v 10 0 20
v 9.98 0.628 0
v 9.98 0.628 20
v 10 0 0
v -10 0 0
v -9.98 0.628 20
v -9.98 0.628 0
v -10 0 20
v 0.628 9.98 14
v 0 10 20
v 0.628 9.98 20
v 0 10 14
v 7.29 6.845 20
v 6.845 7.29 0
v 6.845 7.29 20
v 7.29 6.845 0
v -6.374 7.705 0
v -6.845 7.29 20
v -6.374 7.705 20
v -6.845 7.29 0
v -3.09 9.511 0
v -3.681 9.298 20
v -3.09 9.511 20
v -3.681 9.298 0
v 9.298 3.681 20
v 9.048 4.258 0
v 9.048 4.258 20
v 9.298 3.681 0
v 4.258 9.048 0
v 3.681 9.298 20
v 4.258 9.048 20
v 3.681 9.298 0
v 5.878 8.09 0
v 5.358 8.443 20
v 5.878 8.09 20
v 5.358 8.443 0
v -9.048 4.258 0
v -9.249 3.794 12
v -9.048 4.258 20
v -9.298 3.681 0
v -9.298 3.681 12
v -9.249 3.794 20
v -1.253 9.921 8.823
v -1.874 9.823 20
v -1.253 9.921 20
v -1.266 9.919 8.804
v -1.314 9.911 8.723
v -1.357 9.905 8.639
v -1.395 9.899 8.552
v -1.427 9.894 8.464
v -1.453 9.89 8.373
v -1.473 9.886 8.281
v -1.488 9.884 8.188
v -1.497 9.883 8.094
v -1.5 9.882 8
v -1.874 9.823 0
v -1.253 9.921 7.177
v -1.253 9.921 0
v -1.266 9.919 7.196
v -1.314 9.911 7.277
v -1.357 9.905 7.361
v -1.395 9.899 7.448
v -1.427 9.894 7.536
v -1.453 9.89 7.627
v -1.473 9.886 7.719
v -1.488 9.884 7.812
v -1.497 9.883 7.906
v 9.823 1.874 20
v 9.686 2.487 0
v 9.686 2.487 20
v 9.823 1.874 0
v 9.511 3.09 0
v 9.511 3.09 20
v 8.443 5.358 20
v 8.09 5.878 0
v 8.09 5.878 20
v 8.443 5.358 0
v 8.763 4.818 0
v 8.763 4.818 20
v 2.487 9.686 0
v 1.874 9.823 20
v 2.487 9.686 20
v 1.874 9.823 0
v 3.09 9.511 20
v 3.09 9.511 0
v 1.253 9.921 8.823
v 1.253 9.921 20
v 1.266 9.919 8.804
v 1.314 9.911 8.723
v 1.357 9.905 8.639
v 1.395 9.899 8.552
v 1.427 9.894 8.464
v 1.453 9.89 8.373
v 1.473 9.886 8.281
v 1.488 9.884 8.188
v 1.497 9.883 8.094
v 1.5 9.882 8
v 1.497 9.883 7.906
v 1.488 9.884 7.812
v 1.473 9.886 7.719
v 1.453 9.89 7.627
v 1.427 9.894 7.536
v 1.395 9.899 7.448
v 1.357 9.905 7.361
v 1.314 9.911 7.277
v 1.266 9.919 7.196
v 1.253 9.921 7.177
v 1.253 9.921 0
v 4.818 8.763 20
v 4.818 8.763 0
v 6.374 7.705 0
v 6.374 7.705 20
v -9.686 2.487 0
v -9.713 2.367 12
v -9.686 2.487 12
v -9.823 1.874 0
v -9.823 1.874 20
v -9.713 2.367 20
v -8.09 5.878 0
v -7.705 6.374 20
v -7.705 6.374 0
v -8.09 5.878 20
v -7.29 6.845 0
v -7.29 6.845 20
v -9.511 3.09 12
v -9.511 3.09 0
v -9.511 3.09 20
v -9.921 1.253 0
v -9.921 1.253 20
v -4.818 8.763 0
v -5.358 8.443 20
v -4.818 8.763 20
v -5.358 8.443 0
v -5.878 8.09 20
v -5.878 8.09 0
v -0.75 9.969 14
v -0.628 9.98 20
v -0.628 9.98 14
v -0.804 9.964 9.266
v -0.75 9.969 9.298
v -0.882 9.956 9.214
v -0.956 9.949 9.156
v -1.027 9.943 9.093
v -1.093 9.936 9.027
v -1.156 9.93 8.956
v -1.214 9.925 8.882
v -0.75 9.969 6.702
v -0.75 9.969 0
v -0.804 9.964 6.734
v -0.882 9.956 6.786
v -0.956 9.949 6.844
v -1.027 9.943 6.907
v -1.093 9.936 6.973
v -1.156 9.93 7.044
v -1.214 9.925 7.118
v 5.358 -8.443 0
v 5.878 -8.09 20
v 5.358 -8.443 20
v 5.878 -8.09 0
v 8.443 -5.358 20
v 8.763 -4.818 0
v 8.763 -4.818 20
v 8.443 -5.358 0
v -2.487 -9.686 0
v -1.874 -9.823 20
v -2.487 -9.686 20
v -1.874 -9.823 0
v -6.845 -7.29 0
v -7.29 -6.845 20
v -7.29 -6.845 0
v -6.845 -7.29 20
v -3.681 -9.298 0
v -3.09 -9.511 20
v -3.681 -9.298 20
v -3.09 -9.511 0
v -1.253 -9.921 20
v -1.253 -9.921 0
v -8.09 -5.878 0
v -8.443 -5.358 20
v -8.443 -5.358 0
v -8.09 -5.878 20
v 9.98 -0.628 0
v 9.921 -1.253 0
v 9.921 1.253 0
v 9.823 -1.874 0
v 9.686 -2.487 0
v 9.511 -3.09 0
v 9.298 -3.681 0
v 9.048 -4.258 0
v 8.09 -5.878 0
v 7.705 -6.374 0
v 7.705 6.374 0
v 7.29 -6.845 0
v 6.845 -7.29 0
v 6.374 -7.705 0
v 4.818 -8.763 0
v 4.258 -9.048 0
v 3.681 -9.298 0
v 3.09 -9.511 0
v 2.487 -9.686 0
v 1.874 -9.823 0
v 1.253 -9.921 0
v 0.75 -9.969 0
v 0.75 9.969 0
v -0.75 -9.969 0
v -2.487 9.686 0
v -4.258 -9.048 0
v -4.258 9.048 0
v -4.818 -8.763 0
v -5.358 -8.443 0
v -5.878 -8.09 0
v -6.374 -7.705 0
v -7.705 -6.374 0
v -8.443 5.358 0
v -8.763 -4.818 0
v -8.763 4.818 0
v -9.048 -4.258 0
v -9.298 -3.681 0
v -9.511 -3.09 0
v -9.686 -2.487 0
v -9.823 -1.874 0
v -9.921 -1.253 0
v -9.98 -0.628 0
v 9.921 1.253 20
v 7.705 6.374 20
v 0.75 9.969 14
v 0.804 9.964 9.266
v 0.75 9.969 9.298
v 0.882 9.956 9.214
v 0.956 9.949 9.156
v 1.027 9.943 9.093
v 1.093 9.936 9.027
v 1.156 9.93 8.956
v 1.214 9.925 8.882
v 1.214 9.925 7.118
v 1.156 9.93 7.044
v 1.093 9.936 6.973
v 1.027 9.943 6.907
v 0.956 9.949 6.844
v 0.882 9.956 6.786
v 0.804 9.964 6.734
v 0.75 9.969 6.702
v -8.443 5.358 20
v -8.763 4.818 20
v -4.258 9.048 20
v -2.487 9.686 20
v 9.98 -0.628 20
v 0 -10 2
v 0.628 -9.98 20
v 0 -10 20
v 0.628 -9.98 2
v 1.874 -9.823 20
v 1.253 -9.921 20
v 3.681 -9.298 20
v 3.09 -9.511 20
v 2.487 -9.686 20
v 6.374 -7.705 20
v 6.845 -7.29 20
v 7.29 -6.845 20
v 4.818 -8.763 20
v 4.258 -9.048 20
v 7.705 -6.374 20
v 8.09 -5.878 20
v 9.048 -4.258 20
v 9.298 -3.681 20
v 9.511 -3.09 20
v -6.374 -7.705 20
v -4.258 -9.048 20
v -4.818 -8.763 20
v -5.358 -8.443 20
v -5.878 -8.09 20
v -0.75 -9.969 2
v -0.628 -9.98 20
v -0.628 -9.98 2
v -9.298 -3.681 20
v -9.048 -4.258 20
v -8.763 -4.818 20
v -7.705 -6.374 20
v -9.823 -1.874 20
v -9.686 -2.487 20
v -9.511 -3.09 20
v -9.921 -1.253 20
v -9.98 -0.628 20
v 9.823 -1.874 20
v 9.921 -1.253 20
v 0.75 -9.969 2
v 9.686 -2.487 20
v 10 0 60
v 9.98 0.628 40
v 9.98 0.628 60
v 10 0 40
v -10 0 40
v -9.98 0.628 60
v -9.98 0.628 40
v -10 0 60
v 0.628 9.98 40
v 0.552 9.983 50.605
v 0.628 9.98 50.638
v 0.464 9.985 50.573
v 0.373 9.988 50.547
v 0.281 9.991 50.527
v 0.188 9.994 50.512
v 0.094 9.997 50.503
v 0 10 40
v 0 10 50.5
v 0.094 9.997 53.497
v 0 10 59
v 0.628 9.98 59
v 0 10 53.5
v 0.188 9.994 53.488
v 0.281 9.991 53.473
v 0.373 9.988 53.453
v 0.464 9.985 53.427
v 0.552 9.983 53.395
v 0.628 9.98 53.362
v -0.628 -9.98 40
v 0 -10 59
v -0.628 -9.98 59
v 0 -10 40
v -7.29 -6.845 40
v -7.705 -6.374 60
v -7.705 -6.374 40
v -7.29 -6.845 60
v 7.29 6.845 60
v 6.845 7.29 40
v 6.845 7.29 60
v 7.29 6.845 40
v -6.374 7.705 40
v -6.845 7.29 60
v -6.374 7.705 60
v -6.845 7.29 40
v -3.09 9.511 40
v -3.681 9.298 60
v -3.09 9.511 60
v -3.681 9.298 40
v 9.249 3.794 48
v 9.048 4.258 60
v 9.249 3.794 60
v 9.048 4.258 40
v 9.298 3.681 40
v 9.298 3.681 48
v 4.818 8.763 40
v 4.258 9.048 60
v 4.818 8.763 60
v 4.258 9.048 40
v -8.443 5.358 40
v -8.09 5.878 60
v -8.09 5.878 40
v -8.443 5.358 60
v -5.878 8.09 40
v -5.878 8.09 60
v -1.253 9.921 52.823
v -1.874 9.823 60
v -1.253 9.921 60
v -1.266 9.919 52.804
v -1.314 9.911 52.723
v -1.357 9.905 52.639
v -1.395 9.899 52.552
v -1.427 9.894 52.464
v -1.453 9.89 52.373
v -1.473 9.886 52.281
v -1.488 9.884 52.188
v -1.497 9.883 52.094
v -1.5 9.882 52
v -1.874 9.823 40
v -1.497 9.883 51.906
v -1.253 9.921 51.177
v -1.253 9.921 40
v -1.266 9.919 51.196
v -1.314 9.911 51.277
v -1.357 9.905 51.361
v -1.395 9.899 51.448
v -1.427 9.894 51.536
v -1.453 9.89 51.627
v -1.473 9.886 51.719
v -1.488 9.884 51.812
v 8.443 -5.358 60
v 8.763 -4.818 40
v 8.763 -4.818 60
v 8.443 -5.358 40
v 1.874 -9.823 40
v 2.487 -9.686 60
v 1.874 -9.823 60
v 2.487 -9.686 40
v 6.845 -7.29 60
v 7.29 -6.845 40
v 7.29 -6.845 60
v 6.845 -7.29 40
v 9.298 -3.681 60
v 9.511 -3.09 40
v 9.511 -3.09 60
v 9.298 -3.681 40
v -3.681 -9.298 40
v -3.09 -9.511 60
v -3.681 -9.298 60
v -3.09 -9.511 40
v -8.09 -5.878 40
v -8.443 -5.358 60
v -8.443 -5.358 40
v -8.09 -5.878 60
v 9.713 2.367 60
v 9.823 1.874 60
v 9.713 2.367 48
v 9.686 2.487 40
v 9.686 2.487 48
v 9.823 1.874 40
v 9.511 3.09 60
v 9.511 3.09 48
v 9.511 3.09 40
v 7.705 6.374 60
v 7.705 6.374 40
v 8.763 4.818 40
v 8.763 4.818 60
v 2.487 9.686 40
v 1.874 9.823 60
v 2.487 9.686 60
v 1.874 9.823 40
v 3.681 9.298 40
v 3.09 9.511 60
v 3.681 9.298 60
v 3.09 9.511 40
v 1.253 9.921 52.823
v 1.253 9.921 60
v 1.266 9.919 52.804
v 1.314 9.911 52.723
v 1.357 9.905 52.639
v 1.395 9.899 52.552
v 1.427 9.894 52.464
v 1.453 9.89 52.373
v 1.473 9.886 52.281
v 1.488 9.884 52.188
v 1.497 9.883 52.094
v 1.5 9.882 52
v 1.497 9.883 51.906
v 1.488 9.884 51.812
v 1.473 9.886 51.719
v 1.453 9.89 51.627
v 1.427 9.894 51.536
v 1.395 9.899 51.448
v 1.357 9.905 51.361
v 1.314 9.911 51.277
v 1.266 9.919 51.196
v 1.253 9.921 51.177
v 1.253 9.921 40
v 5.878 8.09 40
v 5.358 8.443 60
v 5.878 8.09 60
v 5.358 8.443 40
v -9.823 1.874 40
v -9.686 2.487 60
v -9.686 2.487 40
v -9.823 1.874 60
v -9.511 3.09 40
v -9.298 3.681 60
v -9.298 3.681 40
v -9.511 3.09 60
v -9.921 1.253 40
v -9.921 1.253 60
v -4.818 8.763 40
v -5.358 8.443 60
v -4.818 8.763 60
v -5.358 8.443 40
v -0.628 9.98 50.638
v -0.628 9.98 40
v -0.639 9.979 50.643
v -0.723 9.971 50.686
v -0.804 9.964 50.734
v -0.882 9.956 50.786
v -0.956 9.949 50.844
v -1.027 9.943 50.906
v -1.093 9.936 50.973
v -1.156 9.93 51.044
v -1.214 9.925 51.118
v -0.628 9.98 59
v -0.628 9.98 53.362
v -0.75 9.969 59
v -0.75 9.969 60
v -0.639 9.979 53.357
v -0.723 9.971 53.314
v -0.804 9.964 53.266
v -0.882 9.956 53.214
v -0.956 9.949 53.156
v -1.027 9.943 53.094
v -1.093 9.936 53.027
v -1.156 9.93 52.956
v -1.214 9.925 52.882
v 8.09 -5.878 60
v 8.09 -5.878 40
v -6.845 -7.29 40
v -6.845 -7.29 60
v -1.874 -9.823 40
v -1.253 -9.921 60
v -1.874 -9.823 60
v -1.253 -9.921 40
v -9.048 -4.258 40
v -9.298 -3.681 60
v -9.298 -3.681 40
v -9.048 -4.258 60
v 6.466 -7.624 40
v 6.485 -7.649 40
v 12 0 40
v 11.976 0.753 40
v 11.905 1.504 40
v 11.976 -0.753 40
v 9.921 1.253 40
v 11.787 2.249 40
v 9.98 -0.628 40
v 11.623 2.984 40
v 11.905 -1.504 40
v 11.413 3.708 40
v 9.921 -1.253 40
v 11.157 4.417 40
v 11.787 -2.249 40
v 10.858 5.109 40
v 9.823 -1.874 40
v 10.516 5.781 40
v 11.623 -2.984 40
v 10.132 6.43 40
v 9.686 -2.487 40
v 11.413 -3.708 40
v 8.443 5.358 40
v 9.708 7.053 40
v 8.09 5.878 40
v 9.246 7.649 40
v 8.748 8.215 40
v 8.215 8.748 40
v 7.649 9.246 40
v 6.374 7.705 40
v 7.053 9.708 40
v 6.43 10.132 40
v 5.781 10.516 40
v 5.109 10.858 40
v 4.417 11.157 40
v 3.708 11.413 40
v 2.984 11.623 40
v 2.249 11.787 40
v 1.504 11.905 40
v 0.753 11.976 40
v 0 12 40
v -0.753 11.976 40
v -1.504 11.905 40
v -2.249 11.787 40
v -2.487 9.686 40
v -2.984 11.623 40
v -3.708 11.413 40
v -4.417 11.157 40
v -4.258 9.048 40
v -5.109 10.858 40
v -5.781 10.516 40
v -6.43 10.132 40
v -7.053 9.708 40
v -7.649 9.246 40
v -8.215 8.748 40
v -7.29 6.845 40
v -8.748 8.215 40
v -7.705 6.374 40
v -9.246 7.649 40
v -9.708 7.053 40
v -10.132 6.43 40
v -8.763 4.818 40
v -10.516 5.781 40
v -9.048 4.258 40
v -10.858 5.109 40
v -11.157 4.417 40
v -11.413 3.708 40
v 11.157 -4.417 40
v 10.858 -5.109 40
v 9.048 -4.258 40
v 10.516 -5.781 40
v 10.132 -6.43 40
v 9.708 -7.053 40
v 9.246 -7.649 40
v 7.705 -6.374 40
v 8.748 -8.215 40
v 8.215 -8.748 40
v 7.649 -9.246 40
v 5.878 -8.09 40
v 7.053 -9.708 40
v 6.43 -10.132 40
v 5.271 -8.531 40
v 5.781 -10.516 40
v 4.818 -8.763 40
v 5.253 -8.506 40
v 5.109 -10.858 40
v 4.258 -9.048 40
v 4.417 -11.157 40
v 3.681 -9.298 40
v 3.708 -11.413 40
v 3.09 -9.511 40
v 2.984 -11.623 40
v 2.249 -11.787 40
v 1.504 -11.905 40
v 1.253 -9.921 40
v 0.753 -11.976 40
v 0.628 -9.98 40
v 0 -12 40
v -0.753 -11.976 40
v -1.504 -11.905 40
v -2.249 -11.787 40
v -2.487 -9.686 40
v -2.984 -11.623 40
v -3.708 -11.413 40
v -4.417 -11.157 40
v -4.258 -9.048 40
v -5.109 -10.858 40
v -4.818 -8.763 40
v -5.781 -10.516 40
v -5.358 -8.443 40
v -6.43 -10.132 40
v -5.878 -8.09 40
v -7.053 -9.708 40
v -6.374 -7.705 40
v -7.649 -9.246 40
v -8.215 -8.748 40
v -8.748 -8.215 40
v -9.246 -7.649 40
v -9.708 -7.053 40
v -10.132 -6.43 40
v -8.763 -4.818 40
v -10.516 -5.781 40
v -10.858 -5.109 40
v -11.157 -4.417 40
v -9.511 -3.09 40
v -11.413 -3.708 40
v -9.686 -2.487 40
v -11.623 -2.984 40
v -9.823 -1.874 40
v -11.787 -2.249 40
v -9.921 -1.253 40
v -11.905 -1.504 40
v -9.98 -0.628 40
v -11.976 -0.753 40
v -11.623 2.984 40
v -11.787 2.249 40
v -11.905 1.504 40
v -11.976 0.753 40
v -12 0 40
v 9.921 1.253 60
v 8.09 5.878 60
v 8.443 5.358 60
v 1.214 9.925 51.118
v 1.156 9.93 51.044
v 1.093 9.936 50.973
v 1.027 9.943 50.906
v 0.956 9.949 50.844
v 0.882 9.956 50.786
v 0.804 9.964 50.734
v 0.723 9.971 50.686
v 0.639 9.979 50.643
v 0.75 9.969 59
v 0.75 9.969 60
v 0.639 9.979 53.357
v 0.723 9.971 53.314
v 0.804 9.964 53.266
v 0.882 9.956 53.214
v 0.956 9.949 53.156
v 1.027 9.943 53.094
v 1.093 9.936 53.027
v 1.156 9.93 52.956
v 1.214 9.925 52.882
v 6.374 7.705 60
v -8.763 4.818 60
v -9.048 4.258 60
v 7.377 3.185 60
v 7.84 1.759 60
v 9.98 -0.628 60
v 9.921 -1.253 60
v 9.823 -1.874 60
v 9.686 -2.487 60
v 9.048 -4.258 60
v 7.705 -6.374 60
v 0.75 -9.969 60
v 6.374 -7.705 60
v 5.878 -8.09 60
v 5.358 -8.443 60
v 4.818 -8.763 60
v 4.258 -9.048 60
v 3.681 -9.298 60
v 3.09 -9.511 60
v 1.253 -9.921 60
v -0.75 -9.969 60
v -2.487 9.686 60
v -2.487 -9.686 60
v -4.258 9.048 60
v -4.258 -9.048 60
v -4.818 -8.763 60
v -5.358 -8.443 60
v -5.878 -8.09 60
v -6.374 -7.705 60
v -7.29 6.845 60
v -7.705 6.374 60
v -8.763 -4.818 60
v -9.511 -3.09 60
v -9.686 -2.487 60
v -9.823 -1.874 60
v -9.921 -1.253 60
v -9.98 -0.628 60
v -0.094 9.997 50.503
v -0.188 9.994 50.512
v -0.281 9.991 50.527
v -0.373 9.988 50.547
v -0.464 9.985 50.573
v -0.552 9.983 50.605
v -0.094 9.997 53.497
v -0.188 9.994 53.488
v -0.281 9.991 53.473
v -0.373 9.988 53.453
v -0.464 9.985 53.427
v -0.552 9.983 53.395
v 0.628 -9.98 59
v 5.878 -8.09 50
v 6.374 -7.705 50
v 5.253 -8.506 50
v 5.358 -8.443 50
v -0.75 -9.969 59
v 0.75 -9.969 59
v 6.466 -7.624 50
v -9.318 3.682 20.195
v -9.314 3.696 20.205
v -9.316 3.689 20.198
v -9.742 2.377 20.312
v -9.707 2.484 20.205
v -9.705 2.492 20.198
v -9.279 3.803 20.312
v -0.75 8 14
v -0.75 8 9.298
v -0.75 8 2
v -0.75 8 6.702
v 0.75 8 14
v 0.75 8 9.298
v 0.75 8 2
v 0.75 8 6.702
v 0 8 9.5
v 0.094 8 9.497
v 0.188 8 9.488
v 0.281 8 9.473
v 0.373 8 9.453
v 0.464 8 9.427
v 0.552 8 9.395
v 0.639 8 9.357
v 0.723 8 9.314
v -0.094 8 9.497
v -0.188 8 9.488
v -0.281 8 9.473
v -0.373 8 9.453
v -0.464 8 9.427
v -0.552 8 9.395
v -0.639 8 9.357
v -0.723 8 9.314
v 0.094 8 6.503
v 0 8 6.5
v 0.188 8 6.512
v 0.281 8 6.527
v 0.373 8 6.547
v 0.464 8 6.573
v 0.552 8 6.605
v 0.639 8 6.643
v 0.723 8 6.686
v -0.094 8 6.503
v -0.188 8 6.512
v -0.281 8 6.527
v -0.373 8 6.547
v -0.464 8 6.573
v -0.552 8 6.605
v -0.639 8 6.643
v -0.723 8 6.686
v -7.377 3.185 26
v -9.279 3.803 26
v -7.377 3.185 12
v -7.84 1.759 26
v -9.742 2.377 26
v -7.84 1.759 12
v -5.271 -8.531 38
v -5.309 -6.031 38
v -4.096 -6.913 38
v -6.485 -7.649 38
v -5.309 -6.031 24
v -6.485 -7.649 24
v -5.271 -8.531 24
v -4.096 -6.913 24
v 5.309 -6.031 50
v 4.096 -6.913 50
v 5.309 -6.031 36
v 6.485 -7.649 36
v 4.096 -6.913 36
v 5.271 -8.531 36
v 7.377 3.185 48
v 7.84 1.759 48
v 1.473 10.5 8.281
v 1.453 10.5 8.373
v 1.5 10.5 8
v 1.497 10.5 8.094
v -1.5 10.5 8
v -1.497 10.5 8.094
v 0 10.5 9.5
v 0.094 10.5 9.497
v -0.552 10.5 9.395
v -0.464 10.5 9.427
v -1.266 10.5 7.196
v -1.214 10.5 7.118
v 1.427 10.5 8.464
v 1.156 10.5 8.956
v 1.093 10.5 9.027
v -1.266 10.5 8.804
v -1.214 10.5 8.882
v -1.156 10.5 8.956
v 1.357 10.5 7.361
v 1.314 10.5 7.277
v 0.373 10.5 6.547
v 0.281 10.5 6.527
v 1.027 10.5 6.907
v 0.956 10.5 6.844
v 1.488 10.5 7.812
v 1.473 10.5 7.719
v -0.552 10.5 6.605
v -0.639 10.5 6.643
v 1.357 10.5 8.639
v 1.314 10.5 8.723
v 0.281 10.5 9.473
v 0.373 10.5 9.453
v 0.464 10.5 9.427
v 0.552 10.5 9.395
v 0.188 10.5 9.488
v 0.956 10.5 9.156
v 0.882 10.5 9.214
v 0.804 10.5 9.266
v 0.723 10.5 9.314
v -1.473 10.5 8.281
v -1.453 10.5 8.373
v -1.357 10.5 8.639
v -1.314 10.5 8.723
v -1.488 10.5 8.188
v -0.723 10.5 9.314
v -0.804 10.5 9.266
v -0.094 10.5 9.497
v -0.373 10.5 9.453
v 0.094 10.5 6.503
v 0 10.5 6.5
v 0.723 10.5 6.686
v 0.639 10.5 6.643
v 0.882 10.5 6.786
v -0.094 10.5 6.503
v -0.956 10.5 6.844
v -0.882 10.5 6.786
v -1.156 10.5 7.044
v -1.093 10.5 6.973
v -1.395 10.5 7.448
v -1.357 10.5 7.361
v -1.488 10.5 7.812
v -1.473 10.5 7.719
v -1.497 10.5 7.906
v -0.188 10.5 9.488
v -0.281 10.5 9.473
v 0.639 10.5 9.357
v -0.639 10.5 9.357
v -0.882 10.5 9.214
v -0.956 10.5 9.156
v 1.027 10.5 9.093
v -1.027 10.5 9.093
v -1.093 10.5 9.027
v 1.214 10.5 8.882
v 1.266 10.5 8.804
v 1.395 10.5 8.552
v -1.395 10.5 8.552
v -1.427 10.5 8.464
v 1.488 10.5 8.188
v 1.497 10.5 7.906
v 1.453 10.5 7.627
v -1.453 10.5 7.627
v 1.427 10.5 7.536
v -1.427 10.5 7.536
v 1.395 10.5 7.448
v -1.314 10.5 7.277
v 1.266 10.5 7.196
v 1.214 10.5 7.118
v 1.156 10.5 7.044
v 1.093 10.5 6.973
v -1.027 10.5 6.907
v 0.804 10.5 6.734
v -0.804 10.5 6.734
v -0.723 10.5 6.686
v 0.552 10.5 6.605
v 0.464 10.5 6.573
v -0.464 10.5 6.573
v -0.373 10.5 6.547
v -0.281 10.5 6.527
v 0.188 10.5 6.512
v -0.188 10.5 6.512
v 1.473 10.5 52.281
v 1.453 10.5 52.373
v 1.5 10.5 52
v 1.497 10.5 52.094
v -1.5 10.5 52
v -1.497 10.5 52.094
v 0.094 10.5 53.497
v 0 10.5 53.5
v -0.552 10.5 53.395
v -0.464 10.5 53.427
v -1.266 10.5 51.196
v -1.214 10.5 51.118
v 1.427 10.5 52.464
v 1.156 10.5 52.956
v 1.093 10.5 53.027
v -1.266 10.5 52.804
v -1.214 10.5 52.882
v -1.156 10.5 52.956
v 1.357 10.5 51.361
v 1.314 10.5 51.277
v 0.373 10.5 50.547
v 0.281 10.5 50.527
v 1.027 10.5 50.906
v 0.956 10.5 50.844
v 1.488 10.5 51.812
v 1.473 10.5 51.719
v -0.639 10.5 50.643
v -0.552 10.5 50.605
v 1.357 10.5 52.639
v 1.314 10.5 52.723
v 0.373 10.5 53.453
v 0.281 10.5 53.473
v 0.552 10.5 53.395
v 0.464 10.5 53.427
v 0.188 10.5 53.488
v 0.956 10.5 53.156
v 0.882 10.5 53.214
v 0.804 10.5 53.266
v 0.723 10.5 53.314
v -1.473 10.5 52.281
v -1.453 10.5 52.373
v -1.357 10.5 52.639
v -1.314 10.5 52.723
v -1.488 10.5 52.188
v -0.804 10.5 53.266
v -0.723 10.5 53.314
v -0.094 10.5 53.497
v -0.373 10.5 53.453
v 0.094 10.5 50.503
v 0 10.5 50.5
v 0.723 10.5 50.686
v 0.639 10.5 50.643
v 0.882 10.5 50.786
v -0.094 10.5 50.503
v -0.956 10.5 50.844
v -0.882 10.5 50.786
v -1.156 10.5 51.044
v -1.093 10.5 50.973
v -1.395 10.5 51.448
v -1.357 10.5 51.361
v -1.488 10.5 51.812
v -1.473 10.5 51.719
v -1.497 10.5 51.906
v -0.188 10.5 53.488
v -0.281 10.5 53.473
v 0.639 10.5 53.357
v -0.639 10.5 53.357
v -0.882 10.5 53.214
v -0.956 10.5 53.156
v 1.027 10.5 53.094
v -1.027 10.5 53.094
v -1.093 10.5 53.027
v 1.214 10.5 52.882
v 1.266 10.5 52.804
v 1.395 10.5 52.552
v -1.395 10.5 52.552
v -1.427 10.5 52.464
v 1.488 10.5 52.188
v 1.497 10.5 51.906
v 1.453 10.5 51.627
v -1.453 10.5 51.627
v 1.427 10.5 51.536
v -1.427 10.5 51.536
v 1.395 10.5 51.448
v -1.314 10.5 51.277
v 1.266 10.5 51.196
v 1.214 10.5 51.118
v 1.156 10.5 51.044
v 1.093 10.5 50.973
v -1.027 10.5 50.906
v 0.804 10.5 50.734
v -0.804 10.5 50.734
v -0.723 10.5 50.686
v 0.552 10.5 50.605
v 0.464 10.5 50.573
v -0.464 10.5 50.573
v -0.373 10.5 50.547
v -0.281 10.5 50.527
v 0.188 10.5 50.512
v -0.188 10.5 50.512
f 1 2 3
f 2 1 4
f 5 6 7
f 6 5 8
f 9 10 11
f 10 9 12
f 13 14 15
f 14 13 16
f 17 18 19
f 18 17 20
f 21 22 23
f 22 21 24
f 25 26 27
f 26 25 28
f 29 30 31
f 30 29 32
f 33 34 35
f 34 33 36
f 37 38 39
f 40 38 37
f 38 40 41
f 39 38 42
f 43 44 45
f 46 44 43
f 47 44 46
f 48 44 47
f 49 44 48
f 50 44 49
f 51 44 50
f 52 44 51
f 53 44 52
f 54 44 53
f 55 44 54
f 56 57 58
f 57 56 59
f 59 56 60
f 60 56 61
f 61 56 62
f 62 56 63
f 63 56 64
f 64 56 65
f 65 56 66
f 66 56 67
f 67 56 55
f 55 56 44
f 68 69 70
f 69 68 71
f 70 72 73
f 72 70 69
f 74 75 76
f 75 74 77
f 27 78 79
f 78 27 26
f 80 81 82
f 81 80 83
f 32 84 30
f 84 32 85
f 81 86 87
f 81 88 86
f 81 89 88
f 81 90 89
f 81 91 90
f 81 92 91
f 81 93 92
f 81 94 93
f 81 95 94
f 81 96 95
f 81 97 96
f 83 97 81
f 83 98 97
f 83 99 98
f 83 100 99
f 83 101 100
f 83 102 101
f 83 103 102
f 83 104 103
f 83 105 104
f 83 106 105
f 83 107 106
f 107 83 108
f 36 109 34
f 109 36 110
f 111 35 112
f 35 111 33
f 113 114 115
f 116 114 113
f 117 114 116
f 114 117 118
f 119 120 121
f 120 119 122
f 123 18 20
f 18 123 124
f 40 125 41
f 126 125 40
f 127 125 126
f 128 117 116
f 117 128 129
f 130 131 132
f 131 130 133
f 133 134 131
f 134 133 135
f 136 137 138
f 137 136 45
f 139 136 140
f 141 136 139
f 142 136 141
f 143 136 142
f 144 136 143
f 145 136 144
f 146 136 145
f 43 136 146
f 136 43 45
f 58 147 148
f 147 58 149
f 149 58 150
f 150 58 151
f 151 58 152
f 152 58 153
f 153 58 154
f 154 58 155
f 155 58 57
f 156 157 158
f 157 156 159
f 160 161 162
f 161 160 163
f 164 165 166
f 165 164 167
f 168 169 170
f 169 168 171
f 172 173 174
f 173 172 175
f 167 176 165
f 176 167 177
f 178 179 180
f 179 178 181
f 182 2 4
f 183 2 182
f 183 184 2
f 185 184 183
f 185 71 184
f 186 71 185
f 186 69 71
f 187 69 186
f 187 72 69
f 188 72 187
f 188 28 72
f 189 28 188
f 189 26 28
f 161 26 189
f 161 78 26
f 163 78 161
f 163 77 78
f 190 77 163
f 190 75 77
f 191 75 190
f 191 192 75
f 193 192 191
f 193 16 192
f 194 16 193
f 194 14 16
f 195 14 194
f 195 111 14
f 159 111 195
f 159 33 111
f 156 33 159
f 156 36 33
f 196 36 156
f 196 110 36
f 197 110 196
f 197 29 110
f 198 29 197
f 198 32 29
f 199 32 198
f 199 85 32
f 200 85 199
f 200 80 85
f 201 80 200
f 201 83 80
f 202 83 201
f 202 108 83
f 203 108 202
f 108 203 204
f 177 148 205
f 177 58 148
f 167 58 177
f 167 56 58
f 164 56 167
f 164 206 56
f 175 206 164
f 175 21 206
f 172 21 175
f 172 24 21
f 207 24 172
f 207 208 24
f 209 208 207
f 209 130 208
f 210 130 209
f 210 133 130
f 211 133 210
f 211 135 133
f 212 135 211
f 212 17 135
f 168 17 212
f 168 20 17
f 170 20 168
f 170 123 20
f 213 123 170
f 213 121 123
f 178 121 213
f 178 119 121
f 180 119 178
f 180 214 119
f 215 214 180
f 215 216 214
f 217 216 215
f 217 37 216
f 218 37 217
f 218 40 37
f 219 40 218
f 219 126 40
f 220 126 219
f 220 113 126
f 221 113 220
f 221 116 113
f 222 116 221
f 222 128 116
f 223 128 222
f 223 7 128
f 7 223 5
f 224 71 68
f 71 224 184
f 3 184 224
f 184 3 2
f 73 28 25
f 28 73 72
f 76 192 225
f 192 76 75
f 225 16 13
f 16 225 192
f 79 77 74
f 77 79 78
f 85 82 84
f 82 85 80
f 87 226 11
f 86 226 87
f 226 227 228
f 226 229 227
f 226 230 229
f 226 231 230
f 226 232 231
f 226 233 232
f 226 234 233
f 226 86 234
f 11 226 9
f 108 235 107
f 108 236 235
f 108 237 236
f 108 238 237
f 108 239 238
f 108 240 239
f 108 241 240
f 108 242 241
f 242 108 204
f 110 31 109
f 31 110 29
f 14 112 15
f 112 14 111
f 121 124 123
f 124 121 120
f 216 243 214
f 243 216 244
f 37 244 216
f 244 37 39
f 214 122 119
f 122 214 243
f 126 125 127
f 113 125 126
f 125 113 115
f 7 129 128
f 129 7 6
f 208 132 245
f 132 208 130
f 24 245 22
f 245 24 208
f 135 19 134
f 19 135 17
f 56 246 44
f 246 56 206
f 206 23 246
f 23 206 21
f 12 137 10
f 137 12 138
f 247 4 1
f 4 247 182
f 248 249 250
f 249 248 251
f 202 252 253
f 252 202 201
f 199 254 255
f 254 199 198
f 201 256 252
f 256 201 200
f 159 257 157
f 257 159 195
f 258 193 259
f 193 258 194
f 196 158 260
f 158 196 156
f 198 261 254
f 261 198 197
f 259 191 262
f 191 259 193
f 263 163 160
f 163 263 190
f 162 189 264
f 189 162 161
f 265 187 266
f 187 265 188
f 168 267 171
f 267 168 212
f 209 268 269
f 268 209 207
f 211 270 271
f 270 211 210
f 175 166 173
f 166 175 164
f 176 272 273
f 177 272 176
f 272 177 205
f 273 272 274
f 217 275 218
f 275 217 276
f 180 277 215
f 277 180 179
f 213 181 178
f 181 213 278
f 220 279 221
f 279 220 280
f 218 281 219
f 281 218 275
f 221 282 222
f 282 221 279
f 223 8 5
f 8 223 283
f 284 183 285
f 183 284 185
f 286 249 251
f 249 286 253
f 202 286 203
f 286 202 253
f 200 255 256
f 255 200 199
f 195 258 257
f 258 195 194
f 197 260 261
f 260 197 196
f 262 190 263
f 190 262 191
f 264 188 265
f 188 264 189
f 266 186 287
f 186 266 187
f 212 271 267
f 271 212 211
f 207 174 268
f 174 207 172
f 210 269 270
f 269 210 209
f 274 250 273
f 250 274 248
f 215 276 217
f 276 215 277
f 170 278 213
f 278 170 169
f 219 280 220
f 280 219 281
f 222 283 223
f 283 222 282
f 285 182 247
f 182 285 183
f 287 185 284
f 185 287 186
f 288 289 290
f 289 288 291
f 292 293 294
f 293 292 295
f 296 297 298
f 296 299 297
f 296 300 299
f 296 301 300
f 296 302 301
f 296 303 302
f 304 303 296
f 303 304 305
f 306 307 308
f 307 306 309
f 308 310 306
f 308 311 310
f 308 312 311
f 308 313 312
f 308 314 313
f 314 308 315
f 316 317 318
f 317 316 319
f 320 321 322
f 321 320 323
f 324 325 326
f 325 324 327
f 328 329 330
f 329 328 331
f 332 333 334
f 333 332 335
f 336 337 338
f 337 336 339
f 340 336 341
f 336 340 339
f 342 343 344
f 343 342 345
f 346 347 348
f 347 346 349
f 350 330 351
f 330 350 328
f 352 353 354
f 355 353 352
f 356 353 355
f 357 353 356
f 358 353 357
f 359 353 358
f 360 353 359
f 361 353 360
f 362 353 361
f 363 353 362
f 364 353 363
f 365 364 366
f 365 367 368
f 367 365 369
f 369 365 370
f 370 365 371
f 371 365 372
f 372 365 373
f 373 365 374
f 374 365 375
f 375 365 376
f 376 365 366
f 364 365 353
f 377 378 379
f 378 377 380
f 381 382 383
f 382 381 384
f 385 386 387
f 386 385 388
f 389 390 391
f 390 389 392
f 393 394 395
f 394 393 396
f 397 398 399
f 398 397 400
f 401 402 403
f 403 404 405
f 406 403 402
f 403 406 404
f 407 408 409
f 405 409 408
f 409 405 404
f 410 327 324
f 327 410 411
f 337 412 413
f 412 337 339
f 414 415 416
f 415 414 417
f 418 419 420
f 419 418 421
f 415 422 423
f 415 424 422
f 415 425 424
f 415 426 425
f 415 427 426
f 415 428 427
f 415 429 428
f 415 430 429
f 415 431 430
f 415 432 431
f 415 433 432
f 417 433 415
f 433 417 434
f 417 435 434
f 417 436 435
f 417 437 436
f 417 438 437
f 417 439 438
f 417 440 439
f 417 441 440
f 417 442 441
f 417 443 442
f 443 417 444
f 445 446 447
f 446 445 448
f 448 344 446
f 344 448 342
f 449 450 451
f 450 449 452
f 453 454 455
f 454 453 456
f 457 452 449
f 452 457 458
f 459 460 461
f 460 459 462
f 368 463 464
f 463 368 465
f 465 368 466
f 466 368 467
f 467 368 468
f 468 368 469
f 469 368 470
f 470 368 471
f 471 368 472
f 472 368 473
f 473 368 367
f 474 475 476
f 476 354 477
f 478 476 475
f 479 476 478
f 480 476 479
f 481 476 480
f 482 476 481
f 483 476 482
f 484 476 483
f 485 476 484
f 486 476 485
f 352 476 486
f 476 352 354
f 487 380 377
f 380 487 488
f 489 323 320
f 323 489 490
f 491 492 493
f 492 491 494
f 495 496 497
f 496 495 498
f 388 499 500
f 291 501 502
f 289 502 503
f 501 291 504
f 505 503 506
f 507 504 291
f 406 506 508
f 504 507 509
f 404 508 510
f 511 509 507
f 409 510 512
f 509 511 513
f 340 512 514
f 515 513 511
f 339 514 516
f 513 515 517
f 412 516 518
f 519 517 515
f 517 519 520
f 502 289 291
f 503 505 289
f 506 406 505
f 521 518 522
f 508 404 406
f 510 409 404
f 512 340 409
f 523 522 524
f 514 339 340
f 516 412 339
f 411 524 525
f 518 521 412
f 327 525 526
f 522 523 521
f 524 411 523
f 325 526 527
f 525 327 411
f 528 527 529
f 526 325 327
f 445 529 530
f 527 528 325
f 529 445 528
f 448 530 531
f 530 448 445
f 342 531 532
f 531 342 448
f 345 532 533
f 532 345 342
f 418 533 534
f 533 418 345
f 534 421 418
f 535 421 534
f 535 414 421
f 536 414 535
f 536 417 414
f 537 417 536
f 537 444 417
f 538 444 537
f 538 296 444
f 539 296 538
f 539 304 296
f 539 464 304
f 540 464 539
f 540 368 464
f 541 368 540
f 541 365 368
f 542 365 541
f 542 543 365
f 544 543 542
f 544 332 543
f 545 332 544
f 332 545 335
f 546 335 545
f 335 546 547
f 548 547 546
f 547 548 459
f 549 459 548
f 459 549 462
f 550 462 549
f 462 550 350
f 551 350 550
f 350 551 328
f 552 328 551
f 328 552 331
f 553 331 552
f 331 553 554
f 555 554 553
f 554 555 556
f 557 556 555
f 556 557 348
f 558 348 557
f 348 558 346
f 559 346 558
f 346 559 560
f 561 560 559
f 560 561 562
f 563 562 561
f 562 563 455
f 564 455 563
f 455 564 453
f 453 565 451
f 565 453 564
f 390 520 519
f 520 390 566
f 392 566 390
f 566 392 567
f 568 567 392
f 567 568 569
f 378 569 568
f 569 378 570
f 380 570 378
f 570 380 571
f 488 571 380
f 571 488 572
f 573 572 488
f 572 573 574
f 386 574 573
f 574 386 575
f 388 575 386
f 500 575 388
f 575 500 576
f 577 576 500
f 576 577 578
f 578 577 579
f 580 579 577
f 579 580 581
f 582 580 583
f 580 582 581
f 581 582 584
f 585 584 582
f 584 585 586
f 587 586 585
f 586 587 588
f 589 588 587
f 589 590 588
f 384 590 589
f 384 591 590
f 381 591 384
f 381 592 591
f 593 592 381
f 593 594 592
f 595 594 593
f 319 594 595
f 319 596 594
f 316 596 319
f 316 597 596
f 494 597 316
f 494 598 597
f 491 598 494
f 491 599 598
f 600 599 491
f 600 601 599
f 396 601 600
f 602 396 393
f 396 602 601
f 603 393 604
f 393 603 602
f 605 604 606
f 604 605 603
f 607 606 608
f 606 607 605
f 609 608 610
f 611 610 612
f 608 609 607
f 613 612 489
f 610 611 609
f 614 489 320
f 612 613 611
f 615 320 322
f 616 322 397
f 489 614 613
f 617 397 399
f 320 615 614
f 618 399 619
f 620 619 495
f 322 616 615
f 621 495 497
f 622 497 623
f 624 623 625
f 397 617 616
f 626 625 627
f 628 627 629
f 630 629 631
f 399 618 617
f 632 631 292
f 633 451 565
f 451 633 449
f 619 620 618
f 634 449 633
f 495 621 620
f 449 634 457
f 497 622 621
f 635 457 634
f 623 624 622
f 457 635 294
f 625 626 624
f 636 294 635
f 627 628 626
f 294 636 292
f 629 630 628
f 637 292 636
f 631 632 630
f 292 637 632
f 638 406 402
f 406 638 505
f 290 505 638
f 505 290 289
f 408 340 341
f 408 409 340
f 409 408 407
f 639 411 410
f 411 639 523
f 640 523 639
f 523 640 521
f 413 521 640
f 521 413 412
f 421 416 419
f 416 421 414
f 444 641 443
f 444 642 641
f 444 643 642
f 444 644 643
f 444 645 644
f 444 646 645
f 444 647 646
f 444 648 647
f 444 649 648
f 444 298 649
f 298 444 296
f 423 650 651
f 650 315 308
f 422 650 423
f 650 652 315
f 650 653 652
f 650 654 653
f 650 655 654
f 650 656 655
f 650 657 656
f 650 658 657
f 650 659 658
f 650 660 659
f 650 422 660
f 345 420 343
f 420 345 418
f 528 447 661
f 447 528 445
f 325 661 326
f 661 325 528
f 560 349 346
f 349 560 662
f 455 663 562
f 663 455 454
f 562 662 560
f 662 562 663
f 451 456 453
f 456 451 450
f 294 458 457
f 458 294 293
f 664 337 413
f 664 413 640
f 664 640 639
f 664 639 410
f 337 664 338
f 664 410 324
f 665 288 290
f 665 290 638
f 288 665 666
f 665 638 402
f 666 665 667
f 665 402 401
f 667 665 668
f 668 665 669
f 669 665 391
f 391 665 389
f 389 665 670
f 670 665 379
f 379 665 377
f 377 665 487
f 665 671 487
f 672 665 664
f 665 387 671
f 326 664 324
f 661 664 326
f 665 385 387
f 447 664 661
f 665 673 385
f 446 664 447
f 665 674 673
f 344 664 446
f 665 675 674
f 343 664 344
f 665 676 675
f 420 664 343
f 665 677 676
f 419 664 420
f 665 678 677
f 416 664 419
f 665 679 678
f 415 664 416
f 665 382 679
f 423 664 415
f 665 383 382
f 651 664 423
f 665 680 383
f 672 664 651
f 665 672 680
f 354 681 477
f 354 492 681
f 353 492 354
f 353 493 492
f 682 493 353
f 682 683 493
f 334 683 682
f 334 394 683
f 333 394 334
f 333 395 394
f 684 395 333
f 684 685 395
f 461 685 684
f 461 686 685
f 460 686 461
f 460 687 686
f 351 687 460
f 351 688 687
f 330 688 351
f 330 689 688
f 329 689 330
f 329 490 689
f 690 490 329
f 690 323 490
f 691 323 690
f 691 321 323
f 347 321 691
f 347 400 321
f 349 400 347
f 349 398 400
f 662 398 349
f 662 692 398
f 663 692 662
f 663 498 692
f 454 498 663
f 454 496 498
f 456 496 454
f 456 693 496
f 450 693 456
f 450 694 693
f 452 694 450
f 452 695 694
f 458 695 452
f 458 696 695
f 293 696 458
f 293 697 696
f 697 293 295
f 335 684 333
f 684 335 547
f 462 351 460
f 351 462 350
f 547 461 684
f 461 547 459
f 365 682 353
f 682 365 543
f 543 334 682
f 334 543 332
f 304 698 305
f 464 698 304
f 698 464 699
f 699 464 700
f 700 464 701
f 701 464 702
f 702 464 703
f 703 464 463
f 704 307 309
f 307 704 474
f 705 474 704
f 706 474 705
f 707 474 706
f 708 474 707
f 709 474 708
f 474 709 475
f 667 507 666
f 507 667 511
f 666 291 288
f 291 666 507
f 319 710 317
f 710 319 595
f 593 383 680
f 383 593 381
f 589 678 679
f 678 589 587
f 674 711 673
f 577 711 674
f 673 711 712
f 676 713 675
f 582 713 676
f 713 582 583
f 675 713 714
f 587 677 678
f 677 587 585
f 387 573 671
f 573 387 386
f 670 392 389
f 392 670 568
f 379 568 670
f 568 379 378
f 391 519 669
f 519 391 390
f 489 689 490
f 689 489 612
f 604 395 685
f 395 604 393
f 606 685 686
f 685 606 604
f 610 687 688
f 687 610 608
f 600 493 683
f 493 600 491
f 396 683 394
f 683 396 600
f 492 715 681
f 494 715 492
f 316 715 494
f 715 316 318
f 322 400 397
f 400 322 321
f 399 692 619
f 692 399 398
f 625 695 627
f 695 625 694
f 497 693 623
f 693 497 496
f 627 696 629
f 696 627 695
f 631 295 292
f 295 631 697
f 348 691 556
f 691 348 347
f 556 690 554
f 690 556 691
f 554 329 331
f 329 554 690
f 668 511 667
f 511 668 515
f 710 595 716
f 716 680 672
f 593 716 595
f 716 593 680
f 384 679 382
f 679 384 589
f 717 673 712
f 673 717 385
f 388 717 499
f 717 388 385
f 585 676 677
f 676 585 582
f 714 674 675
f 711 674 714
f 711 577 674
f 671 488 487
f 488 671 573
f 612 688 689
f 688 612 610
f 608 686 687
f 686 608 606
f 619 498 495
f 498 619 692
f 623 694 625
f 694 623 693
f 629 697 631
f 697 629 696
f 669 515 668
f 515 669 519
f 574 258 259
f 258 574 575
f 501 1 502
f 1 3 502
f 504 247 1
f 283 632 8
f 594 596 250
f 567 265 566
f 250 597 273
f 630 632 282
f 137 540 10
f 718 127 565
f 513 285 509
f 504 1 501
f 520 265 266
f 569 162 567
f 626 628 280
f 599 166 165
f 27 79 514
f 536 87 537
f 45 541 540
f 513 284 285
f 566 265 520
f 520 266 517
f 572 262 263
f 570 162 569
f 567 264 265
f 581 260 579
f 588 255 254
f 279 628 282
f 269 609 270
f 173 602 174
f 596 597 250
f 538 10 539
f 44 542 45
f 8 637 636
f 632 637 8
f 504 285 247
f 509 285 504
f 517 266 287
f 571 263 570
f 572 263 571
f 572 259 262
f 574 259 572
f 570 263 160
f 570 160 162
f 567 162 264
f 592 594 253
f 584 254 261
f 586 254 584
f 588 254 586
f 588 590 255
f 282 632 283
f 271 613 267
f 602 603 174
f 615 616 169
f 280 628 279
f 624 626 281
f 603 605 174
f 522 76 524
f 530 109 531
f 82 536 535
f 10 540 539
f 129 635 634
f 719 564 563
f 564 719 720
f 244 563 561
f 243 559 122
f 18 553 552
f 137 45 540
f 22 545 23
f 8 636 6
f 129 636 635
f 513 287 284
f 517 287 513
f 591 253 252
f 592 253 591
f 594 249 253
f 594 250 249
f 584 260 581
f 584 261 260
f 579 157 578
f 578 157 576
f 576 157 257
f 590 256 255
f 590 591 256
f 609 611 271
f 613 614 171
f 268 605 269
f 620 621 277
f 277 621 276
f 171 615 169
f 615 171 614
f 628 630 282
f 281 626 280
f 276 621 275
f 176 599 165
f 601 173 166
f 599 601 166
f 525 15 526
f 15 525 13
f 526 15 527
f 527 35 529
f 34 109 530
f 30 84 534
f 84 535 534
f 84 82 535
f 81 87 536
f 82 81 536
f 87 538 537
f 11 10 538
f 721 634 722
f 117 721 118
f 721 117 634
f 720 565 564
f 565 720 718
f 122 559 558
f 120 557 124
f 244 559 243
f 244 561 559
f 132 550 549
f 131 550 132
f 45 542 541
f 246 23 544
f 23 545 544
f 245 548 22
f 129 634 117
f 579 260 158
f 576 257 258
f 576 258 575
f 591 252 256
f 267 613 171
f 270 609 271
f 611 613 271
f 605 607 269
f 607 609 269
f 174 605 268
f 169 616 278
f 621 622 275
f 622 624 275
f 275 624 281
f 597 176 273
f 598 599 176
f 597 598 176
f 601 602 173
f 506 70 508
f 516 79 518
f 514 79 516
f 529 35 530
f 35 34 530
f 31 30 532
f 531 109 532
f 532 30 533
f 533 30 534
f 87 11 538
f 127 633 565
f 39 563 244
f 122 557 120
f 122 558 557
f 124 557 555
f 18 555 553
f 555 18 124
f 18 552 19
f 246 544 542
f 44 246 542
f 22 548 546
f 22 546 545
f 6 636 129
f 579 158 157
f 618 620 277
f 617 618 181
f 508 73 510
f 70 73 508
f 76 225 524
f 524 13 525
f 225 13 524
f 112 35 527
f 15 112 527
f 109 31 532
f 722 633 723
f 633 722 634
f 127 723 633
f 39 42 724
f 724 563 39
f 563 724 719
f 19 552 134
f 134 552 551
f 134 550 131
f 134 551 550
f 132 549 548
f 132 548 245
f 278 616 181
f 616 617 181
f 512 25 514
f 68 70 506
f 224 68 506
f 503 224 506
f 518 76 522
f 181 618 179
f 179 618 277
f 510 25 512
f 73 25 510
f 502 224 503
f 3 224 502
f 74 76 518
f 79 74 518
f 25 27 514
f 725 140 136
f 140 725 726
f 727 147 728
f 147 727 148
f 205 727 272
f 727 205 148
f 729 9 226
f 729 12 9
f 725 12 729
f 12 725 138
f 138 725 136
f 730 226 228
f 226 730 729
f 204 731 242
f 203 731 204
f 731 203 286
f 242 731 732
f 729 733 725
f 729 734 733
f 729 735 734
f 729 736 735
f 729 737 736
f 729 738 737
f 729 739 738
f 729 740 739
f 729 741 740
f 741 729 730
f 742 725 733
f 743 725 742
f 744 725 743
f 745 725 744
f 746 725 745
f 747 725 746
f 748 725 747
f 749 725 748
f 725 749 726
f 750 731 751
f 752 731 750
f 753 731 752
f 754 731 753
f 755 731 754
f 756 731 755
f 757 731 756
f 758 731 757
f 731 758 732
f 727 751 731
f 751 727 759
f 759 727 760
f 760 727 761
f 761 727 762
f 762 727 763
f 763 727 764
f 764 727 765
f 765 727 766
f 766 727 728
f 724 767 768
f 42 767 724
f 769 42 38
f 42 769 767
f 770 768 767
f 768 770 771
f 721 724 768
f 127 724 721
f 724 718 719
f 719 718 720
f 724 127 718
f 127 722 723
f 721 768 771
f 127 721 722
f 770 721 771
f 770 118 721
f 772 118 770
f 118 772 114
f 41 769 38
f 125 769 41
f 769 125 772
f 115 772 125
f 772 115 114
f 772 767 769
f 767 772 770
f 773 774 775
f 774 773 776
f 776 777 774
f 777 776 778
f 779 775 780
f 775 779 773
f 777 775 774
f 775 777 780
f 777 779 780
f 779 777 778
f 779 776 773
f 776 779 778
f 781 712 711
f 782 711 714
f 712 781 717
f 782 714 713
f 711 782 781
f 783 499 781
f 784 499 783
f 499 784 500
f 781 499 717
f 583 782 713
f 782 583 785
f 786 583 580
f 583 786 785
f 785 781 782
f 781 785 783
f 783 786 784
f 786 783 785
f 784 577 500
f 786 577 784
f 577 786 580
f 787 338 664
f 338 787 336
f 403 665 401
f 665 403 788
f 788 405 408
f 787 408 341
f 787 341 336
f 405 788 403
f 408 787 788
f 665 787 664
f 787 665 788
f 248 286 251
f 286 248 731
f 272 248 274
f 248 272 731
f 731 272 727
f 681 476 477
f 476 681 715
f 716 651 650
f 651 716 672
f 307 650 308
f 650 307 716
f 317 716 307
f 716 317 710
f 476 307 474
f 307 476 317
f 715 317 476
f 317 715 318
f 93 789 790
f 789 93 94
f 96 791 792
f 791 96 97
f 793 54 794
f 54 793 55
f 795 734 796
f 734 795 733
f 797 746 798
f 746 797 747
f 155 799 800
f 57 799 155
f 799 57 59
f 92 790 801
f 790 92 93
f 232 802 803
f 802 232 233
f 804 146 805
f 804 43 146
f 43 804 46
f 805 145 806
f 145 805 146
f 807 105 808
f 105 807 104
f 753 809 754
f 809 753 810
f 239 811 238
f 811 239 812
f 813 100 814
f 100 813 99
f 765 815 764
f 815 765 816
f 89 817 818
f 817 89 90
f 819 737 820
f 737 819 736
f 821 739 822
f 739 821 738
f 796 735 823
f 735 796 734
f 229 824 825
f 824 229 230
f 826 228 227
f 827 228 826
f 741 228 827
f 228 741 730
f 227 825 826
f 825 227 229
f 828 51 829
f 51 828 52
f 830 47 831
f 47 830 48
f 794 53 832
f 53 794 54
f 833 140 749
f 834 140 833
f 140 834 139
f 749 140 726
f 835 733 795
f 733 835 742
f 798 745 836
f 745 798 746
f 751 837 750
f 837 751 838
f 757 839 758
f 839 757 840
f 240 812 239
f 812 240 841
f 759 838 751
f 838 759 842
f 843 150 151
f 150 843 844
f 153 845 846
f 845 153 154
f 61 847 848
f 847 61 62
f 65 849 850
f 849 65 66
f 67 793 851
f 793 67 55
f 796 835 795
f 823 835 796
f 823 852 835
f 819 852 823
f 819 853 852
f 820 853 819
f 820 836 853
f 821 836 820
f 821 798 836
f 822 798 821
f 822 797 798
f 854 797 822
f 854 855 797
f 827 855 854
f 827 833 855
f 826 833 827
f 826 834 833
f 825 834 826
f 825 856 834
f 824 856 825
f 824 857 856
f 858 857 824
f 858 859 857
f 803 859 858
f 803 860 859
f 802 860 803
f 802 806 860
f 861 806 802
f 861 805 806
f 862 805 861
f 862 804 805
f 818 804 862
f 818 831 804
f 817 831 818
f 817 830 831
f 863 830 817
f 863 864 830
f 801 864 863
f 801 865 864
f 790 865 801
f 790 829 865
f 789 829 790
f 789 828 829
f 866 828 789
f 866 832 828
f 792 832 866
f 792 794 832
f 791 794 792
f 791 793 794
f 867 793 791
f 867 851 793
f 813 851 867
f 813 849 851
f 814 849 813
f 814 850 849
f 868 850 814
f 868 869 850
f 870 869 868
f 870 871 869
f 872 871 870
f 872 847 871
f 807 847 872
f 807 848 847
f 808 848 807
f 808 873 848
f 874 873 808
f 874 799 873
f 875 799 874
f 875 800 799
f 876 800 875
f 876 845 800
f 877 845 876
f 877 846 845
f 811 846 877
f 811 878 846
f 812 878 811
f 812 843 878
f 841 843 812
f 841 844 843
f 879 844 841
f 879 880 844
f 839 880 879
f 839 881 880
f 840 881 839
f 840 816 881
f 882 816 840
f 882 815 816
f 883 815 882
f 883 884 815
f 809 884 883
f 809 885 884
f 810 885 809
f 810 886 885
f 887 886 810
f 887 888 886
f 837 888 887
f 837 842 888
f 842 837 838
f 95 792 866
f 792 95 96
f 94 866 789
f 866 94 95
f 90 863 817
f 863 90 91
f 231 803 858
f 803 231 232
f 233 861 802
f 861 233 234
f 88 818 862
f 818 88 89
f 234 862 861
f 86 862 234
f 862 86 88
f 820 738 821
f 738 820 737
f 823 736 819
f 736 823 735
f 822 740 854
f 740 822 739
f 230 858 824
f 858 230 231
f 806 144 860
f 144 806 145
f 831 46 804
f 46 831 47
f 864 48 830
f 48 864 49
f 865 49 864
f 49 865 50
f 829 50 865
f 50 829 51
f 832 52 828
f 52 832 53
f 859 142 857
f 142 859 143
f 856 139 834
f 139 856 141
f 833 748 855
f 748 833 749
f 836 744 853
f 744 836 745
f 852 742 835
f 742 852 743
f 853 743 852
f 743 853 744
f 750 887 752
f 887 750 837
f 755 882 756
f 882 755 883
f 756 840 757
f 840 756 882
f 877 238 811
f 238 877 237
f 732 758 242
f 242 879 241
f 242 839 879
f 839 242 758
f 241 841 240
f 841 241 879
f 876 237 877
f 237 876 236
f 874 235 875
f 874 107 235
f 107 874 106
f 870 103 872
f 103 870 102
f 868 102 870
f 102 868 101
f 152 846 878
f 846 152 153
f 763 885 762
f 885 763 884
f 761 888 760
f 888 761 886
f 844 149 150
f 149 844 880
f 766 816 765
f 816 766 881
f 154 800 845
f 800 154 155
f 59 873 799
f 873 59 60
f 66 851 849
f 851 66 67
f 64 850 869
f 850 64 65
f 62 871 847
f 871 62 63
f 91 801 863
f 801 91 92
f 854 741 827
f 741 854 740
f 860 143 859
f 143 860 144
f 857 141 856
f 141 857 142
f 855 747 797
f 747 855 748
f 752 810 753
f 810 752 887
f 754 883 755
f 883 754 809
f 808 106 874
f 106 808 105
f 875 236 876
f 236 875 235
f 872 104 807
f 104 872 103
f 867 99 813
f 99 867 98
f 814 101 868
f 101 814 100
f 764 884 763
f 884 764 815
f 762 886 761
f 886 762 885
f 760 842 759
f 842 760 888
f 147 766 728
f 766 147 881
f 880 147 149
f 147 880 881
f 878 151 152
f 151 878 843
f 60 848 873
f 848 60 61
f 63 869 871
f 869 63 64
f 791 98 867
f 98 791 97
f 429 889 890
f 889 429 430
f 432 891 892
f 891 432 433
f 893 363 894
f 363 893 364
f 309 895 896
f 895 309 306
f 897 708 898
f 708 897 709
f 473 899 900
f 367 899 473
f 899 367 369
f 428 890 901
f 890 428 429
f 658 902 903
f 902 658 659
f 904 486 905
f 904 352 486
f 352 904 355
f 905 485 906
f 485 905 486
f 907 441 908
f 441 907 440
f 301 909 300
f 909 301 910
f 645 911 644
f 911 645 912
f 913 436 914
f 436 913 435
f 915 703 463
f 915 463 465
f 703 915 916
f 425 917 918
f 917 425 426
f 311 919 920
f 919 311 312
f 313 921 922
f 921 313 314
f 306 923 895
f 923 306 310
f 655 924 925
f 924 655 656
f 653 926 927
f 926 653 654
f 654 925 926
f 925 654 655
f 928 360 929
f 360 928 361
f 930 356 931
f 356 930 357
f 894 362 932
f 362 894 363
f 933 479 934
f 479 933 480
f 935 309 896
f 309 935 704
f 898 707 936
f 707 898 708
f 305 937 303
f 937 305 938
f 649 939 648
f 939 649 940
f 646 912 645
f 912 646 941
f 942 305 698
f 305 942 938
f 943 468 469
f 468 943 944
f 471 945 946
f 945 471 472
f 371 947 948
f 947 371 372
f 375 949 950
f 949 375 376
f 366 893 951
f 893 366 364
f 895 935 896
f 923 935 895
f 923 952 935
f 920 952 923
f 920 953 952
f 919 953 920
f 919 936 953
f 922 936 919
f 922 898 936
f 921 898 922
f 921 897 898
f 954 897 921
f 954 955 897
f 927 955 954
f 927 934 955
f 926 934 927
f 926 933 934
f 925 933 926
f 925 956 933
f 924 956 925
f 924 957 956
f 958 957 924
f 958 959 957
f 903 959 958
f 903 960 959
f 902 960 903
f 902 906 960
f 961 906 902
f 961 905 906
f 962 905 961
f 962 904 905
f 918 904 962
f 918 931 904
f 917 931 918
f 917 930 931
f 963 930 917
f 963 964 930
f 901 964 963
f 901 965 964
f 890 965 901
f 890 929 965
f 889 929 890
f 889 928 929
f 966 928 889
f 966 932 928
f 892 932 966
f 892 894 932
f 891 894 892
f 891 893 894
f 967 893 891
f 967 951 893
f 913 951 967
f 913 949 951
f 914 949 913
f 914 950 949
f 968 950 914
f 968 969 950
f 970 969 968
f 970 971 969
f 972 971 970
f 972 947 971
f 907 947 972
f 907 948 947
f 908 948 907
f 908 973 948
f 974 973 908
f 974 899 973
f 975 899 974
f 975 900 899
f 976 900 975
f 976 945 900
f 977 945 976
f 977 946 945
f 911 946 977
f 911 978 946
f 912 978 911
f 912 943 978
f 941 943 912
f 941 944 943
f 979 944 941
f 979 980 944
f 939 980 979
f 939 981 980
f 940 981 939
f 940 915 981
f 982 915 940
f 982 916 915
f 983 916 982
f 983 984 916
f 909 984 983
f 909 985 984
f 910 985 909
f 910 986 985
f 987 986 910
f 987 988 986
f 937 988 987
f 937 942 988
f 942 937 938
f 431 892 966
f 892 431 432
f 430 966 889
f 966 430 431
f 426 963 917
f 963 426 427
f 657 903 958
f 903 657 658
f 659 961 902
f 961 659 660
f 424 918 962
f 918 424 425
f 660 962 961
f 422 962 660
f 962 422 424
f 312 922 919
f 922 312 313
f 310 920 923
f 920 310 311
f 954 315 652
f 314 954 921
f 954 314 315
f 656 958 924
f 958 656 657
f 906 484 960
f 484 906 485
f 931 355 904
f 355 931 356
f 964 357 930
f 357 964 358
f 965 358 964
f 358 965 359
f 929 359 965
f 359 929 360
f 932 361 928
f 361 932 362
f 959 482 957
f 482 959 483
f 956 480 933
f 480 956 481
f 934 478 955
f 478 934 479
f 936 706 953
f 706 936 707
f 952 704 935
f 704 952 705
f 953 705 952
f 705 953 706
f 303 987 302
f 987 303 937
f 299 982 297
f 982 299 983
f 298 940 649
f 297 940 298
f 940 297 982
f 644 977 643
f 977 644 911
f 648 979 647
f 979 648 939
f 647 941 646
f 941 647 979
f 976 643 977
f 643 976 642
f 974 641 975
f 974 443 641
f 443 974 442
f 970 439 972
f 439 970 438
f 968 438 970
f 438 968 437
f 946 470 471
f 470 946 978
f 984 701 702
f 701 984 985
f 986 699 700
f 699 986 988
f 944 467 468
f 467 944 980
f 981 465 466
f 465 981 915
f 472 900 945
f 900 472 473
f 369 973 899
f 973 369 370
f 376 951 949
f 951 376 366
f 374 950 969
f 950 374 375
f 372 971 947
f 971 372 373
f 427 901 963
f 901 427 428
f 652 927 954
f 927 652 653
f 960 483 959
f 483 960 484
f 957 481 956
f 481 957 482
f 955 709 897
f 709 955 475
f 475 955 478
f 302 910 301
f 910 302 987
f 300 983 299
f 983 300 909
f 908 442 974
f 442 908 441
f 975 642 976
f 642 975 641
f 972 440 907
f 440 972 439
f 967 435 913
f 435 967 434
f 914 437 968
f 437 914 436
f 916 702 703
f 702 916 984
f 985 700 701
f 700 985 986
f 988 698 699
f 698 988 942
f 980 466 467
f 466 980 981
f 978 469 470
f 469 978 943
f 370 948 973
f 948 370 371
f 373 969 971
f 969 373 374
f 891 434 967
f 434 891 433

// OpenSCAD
$fn = 100;

// Parameters
main_length = 60;
main_radius = 10;
bulge_radius = 12;
bulge_length = 20;
cut_width = 1.5;
cut_depth = 2;
num_cuts = 5;
screw_radius = 1.5;
screw_length = 8;
screw_offset = 8;

// Main module
module flexible_coupling() {
    difference() {
        union() {
            // Left shaft
            cylinder(h = (main_length - bulge_length)/2, r = main_radius);
            // Right shaft
            translate([0, 0, main_length - (main_length - bulge_length)/2])
                cylinder(h = (main_length - bulge_length)/2, r = main_radius);
            // Bulge
            translate([0, 0, (main_length - bulge_length)/2])
                cylinder(h = bulge_length, r1 = main_radius, r2 = bulge_radius);
        }

        // Helical cuts (simulated with rotated slots)
        for (i = [0:num_cuts-1]) {
            rotate([0, 0, i * 360 / num_cuts])
                translate([-cut_width/2, main_radius - cut_depth, i * main_length / num_cuts])
                    cube([cut_width, cut_depth, main_length / num_cuts + 2], center=false);
        }

        // Clamping screw holes
        for (z = [screw_offset, main_length - screw_offset]) {
            rotate([90, 0, 0])
                translate([z, -main_radius, -screw_radius])
                    cylinder(h = 2*main_radius, r = screw_radius);
        }

        // Slits at both ends
        for (z = [0, main_length - 1]) {
            translate([-cut_width/2, -main_radius, z])
                cube([cut_width, 2*main_radius, 2]);
        }
    }

    // Clamping screws
    for (z = [screw_offset, main_length - screw_offset]) {
        translate([0, main_radius + 0.5, z])
            rotate([90, 0, 0])
                clamping_screw();
    }
}

// Clamping screw module
module clamping_screw() {
    union() {
        cylinder(h = screw_length, r = screw_radius);
        // Hex socket (simplified)
        translate([0, 0, screw_length - 1])
            cylinder(h = 1, r = screw_radius * 0.8, $fn=6);
    }
}

// Render the model
flexible_coupling();
